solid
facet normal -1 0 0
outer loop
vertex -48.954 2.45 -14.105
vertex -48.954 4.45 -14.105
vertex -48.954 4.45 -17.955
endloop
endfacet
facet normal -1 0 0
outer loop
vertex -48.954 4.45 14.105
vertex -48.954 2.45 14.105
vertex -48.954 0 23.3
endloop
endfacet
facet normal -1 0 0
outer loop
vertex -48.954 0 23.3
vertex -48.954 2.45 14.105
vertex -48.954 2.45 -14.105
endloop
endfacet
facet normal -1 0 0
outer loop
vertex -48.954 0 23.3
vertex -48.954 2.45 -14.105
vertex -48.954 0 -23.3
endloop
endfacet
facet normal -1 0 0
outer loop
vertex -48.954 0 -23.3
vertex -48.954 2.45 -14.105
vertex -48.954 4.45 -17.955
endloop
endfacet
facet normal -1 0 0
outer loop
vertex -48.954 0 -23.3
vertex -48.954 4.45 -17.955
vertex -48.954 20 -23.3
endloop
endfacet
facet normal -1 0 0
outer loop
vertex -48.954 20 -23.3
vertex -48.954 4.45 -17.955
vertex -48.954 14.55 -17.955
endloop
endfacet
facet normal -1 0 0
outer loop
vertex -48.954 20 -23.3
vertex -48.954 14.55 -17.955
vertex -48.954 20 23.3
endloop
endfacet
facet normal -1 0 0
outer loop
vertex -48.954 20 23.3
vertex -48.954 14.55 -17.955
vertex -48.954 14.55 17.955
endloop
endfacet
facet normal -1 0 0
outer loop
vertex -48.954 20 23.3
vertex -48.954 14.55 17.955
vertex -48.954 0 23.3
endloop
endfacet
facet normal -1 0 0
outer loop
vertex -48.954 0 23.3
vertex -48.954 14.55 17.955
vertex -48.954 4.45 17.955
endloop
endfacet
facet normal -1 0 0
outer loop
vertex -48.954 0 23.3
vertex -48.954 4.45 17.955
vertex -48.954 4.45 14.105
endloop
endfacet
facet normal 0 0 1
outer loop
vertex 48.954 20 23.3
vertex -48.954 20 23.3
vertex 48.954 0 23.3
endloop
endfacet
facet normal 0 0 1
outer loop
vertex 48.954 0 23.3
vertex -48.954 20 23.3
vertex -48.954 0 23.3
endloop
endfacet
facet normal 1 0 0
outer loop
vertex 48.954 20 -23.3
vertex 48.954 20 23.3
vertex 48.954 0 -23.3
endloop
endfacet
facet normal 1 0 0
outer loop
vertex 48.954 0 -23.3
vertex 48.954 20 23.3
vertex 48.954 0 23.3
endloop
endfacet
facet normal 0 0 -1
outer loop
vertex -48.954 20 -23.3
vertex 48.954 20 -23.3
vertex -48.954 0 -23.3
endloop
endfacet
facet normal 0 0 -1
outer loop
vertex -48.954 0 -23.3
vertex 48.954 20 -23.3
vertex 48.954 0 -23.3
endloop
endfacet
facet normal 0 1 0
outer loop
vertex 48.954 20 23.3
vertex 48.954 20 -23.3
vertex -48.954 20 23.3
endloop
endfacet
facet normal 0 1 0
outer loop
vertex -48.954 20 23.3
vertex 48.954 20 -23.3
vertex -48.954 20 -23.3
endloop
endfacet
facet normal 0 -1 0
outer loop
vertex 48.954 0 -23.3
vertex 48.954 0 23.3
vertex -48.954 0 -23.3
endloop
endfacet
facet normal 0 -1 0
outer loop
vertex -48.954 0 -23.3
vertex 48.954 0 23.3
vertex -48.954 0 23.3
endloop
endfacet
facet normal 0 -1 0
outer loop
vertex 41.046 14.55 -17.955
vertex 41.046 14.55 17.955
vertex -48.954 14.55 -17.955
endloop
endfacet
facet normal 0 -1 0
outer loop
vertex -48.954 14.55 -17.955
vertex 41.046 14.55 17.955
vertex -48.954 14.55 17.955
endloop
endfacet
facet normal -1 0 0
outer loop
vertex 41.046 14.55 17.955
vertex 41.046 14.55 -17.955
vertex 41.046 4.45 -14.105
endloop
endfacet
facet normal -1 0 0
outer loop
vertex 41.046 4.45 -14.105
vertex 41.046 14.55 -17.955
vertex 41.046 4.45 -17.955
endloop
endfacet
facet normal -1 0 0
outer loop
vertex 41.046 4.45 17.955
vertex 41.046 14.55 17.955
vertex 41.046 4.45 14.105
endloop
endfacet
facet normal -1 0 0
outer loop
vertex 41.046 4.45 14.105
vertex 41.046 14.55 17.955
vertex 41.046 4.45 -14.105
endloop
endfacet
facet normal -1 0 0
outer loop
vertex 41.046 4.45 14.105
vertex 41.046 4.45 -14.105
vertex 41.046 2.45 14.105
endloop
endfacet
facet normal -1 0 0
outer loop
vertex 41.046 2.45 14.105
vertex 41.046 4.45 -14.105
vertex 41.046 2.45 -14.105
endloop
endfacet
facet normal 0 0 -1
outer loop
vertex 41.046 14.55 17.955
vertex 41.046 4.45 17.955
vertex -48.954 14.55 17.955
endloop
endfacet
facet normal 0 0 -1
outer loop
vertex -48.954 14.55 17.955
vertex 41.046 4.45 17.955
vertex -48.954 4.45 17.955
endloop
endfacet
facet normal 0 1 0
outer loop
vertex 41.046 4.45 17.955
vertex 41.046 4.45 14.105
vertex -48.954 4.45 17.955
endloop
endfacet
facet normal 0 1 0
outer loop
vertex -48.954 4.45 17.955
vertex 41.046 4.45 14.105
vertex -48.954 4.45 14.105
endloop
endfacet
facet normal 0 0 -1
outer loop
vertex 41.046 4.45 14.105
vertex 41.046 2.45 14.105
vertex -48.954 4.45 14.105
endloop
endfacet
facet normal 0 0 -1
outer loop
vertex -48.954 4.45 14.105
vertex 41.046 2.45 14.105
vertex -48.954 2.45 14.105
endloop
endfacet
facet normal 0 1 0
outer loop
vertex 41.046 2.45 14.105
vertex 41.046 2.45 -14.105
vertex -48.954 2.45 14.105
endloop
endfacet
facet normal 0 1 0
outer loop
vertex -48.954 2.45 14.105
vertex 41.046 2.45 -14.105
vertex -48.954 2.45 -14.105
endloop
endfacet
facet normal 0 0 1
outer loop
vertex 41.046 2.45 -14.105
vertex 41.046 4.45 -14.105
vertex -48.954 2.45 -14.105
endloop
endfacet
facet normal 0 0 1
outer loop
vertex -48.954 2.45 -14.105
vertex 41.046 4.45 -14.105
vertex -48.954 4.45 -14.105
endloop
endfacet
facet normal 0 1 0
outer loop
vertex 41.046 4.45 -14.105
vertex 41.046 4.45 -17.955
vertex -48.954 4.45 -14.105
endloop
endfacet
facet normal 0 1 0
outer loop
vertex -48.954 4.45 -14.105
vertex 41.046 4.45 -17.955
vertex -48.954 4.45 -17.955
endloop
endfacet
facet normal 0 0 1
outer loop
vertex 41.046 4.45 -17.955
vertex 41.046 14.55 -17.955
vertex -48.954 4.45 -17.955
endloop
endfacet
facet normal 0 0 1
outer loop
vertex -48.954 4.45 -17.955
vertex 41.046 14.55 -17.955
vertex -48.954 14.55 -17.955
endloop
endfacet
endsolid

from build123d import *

# Parameters (mm, degrees)
SKETCH1_W           = 97.90721761
SKETCH1_H           = 46.600763908
BOSS_EXTRUDE1_DEPTH = 20
CUT_EXTRUDE1_DEPTH  = 90
CUT_EXTRUDE3_DEPTH  = 90


with BuildPart() as part:
    # Sketch1 → Boss-Extrude1 (new body)
    with BuildSketch(Plane(origin=(0, 0, 0), x_dir=(1, 0, 0), z_dir=(0, 1, 0))):
        Rectangle(SKETCH1_W, SKETCH1_H)
    extrude(amount=BOSS_EXTRUDE1_DEPTH)

    # Sketch3 → Cut-Extrude1 (cut)
    with BuildSketch(Plane.ZY.offset(48.953608805)):
        Polygon((0, 10), (-10.601673789, 14.55), (-17.105, 14.55), (-17.105, 5.45), (-10.601673789, 5.45), align=None)
        Polygon((10.601673789, 14.55), (-10.601673789, 14.55), (0, 10), align=None)
        Polygon((10.601673789, 5.45), (0, 10), (-10.601673789, 5.45), align=None)
        Polygon((10.601673789, 14.55), (0, 10), (10.601673789, 5.45), (17.105, 5.45), (17.105, 14.55), align=None)
    extrude(amount=-CUT_EXTRUDE1_DEPTH, mode=Mode.SUBTRACT)

    # Sketch4 → Cut-Extrude3 (cut)
    with BuildSketch(Plane.ZY.offset(48.953608805)):
        Polygon((-14.105, 4.45), (-14.105, 2.45), (14.105, 2.45), (14.105, 4.45), (17.955, 4.45), (17.955, 14.55), (17.105, 14.55), (17.105, 5.45), (-17.105, 5.45), (-17.105, 14.55), (-17.955, 14.55), (-17.955, 4.45), align=None)
    extrude(amount=-CUT_EXTRUDE3_DEPTH, mode=Mode.SUBTRACT)


solid = part.part
